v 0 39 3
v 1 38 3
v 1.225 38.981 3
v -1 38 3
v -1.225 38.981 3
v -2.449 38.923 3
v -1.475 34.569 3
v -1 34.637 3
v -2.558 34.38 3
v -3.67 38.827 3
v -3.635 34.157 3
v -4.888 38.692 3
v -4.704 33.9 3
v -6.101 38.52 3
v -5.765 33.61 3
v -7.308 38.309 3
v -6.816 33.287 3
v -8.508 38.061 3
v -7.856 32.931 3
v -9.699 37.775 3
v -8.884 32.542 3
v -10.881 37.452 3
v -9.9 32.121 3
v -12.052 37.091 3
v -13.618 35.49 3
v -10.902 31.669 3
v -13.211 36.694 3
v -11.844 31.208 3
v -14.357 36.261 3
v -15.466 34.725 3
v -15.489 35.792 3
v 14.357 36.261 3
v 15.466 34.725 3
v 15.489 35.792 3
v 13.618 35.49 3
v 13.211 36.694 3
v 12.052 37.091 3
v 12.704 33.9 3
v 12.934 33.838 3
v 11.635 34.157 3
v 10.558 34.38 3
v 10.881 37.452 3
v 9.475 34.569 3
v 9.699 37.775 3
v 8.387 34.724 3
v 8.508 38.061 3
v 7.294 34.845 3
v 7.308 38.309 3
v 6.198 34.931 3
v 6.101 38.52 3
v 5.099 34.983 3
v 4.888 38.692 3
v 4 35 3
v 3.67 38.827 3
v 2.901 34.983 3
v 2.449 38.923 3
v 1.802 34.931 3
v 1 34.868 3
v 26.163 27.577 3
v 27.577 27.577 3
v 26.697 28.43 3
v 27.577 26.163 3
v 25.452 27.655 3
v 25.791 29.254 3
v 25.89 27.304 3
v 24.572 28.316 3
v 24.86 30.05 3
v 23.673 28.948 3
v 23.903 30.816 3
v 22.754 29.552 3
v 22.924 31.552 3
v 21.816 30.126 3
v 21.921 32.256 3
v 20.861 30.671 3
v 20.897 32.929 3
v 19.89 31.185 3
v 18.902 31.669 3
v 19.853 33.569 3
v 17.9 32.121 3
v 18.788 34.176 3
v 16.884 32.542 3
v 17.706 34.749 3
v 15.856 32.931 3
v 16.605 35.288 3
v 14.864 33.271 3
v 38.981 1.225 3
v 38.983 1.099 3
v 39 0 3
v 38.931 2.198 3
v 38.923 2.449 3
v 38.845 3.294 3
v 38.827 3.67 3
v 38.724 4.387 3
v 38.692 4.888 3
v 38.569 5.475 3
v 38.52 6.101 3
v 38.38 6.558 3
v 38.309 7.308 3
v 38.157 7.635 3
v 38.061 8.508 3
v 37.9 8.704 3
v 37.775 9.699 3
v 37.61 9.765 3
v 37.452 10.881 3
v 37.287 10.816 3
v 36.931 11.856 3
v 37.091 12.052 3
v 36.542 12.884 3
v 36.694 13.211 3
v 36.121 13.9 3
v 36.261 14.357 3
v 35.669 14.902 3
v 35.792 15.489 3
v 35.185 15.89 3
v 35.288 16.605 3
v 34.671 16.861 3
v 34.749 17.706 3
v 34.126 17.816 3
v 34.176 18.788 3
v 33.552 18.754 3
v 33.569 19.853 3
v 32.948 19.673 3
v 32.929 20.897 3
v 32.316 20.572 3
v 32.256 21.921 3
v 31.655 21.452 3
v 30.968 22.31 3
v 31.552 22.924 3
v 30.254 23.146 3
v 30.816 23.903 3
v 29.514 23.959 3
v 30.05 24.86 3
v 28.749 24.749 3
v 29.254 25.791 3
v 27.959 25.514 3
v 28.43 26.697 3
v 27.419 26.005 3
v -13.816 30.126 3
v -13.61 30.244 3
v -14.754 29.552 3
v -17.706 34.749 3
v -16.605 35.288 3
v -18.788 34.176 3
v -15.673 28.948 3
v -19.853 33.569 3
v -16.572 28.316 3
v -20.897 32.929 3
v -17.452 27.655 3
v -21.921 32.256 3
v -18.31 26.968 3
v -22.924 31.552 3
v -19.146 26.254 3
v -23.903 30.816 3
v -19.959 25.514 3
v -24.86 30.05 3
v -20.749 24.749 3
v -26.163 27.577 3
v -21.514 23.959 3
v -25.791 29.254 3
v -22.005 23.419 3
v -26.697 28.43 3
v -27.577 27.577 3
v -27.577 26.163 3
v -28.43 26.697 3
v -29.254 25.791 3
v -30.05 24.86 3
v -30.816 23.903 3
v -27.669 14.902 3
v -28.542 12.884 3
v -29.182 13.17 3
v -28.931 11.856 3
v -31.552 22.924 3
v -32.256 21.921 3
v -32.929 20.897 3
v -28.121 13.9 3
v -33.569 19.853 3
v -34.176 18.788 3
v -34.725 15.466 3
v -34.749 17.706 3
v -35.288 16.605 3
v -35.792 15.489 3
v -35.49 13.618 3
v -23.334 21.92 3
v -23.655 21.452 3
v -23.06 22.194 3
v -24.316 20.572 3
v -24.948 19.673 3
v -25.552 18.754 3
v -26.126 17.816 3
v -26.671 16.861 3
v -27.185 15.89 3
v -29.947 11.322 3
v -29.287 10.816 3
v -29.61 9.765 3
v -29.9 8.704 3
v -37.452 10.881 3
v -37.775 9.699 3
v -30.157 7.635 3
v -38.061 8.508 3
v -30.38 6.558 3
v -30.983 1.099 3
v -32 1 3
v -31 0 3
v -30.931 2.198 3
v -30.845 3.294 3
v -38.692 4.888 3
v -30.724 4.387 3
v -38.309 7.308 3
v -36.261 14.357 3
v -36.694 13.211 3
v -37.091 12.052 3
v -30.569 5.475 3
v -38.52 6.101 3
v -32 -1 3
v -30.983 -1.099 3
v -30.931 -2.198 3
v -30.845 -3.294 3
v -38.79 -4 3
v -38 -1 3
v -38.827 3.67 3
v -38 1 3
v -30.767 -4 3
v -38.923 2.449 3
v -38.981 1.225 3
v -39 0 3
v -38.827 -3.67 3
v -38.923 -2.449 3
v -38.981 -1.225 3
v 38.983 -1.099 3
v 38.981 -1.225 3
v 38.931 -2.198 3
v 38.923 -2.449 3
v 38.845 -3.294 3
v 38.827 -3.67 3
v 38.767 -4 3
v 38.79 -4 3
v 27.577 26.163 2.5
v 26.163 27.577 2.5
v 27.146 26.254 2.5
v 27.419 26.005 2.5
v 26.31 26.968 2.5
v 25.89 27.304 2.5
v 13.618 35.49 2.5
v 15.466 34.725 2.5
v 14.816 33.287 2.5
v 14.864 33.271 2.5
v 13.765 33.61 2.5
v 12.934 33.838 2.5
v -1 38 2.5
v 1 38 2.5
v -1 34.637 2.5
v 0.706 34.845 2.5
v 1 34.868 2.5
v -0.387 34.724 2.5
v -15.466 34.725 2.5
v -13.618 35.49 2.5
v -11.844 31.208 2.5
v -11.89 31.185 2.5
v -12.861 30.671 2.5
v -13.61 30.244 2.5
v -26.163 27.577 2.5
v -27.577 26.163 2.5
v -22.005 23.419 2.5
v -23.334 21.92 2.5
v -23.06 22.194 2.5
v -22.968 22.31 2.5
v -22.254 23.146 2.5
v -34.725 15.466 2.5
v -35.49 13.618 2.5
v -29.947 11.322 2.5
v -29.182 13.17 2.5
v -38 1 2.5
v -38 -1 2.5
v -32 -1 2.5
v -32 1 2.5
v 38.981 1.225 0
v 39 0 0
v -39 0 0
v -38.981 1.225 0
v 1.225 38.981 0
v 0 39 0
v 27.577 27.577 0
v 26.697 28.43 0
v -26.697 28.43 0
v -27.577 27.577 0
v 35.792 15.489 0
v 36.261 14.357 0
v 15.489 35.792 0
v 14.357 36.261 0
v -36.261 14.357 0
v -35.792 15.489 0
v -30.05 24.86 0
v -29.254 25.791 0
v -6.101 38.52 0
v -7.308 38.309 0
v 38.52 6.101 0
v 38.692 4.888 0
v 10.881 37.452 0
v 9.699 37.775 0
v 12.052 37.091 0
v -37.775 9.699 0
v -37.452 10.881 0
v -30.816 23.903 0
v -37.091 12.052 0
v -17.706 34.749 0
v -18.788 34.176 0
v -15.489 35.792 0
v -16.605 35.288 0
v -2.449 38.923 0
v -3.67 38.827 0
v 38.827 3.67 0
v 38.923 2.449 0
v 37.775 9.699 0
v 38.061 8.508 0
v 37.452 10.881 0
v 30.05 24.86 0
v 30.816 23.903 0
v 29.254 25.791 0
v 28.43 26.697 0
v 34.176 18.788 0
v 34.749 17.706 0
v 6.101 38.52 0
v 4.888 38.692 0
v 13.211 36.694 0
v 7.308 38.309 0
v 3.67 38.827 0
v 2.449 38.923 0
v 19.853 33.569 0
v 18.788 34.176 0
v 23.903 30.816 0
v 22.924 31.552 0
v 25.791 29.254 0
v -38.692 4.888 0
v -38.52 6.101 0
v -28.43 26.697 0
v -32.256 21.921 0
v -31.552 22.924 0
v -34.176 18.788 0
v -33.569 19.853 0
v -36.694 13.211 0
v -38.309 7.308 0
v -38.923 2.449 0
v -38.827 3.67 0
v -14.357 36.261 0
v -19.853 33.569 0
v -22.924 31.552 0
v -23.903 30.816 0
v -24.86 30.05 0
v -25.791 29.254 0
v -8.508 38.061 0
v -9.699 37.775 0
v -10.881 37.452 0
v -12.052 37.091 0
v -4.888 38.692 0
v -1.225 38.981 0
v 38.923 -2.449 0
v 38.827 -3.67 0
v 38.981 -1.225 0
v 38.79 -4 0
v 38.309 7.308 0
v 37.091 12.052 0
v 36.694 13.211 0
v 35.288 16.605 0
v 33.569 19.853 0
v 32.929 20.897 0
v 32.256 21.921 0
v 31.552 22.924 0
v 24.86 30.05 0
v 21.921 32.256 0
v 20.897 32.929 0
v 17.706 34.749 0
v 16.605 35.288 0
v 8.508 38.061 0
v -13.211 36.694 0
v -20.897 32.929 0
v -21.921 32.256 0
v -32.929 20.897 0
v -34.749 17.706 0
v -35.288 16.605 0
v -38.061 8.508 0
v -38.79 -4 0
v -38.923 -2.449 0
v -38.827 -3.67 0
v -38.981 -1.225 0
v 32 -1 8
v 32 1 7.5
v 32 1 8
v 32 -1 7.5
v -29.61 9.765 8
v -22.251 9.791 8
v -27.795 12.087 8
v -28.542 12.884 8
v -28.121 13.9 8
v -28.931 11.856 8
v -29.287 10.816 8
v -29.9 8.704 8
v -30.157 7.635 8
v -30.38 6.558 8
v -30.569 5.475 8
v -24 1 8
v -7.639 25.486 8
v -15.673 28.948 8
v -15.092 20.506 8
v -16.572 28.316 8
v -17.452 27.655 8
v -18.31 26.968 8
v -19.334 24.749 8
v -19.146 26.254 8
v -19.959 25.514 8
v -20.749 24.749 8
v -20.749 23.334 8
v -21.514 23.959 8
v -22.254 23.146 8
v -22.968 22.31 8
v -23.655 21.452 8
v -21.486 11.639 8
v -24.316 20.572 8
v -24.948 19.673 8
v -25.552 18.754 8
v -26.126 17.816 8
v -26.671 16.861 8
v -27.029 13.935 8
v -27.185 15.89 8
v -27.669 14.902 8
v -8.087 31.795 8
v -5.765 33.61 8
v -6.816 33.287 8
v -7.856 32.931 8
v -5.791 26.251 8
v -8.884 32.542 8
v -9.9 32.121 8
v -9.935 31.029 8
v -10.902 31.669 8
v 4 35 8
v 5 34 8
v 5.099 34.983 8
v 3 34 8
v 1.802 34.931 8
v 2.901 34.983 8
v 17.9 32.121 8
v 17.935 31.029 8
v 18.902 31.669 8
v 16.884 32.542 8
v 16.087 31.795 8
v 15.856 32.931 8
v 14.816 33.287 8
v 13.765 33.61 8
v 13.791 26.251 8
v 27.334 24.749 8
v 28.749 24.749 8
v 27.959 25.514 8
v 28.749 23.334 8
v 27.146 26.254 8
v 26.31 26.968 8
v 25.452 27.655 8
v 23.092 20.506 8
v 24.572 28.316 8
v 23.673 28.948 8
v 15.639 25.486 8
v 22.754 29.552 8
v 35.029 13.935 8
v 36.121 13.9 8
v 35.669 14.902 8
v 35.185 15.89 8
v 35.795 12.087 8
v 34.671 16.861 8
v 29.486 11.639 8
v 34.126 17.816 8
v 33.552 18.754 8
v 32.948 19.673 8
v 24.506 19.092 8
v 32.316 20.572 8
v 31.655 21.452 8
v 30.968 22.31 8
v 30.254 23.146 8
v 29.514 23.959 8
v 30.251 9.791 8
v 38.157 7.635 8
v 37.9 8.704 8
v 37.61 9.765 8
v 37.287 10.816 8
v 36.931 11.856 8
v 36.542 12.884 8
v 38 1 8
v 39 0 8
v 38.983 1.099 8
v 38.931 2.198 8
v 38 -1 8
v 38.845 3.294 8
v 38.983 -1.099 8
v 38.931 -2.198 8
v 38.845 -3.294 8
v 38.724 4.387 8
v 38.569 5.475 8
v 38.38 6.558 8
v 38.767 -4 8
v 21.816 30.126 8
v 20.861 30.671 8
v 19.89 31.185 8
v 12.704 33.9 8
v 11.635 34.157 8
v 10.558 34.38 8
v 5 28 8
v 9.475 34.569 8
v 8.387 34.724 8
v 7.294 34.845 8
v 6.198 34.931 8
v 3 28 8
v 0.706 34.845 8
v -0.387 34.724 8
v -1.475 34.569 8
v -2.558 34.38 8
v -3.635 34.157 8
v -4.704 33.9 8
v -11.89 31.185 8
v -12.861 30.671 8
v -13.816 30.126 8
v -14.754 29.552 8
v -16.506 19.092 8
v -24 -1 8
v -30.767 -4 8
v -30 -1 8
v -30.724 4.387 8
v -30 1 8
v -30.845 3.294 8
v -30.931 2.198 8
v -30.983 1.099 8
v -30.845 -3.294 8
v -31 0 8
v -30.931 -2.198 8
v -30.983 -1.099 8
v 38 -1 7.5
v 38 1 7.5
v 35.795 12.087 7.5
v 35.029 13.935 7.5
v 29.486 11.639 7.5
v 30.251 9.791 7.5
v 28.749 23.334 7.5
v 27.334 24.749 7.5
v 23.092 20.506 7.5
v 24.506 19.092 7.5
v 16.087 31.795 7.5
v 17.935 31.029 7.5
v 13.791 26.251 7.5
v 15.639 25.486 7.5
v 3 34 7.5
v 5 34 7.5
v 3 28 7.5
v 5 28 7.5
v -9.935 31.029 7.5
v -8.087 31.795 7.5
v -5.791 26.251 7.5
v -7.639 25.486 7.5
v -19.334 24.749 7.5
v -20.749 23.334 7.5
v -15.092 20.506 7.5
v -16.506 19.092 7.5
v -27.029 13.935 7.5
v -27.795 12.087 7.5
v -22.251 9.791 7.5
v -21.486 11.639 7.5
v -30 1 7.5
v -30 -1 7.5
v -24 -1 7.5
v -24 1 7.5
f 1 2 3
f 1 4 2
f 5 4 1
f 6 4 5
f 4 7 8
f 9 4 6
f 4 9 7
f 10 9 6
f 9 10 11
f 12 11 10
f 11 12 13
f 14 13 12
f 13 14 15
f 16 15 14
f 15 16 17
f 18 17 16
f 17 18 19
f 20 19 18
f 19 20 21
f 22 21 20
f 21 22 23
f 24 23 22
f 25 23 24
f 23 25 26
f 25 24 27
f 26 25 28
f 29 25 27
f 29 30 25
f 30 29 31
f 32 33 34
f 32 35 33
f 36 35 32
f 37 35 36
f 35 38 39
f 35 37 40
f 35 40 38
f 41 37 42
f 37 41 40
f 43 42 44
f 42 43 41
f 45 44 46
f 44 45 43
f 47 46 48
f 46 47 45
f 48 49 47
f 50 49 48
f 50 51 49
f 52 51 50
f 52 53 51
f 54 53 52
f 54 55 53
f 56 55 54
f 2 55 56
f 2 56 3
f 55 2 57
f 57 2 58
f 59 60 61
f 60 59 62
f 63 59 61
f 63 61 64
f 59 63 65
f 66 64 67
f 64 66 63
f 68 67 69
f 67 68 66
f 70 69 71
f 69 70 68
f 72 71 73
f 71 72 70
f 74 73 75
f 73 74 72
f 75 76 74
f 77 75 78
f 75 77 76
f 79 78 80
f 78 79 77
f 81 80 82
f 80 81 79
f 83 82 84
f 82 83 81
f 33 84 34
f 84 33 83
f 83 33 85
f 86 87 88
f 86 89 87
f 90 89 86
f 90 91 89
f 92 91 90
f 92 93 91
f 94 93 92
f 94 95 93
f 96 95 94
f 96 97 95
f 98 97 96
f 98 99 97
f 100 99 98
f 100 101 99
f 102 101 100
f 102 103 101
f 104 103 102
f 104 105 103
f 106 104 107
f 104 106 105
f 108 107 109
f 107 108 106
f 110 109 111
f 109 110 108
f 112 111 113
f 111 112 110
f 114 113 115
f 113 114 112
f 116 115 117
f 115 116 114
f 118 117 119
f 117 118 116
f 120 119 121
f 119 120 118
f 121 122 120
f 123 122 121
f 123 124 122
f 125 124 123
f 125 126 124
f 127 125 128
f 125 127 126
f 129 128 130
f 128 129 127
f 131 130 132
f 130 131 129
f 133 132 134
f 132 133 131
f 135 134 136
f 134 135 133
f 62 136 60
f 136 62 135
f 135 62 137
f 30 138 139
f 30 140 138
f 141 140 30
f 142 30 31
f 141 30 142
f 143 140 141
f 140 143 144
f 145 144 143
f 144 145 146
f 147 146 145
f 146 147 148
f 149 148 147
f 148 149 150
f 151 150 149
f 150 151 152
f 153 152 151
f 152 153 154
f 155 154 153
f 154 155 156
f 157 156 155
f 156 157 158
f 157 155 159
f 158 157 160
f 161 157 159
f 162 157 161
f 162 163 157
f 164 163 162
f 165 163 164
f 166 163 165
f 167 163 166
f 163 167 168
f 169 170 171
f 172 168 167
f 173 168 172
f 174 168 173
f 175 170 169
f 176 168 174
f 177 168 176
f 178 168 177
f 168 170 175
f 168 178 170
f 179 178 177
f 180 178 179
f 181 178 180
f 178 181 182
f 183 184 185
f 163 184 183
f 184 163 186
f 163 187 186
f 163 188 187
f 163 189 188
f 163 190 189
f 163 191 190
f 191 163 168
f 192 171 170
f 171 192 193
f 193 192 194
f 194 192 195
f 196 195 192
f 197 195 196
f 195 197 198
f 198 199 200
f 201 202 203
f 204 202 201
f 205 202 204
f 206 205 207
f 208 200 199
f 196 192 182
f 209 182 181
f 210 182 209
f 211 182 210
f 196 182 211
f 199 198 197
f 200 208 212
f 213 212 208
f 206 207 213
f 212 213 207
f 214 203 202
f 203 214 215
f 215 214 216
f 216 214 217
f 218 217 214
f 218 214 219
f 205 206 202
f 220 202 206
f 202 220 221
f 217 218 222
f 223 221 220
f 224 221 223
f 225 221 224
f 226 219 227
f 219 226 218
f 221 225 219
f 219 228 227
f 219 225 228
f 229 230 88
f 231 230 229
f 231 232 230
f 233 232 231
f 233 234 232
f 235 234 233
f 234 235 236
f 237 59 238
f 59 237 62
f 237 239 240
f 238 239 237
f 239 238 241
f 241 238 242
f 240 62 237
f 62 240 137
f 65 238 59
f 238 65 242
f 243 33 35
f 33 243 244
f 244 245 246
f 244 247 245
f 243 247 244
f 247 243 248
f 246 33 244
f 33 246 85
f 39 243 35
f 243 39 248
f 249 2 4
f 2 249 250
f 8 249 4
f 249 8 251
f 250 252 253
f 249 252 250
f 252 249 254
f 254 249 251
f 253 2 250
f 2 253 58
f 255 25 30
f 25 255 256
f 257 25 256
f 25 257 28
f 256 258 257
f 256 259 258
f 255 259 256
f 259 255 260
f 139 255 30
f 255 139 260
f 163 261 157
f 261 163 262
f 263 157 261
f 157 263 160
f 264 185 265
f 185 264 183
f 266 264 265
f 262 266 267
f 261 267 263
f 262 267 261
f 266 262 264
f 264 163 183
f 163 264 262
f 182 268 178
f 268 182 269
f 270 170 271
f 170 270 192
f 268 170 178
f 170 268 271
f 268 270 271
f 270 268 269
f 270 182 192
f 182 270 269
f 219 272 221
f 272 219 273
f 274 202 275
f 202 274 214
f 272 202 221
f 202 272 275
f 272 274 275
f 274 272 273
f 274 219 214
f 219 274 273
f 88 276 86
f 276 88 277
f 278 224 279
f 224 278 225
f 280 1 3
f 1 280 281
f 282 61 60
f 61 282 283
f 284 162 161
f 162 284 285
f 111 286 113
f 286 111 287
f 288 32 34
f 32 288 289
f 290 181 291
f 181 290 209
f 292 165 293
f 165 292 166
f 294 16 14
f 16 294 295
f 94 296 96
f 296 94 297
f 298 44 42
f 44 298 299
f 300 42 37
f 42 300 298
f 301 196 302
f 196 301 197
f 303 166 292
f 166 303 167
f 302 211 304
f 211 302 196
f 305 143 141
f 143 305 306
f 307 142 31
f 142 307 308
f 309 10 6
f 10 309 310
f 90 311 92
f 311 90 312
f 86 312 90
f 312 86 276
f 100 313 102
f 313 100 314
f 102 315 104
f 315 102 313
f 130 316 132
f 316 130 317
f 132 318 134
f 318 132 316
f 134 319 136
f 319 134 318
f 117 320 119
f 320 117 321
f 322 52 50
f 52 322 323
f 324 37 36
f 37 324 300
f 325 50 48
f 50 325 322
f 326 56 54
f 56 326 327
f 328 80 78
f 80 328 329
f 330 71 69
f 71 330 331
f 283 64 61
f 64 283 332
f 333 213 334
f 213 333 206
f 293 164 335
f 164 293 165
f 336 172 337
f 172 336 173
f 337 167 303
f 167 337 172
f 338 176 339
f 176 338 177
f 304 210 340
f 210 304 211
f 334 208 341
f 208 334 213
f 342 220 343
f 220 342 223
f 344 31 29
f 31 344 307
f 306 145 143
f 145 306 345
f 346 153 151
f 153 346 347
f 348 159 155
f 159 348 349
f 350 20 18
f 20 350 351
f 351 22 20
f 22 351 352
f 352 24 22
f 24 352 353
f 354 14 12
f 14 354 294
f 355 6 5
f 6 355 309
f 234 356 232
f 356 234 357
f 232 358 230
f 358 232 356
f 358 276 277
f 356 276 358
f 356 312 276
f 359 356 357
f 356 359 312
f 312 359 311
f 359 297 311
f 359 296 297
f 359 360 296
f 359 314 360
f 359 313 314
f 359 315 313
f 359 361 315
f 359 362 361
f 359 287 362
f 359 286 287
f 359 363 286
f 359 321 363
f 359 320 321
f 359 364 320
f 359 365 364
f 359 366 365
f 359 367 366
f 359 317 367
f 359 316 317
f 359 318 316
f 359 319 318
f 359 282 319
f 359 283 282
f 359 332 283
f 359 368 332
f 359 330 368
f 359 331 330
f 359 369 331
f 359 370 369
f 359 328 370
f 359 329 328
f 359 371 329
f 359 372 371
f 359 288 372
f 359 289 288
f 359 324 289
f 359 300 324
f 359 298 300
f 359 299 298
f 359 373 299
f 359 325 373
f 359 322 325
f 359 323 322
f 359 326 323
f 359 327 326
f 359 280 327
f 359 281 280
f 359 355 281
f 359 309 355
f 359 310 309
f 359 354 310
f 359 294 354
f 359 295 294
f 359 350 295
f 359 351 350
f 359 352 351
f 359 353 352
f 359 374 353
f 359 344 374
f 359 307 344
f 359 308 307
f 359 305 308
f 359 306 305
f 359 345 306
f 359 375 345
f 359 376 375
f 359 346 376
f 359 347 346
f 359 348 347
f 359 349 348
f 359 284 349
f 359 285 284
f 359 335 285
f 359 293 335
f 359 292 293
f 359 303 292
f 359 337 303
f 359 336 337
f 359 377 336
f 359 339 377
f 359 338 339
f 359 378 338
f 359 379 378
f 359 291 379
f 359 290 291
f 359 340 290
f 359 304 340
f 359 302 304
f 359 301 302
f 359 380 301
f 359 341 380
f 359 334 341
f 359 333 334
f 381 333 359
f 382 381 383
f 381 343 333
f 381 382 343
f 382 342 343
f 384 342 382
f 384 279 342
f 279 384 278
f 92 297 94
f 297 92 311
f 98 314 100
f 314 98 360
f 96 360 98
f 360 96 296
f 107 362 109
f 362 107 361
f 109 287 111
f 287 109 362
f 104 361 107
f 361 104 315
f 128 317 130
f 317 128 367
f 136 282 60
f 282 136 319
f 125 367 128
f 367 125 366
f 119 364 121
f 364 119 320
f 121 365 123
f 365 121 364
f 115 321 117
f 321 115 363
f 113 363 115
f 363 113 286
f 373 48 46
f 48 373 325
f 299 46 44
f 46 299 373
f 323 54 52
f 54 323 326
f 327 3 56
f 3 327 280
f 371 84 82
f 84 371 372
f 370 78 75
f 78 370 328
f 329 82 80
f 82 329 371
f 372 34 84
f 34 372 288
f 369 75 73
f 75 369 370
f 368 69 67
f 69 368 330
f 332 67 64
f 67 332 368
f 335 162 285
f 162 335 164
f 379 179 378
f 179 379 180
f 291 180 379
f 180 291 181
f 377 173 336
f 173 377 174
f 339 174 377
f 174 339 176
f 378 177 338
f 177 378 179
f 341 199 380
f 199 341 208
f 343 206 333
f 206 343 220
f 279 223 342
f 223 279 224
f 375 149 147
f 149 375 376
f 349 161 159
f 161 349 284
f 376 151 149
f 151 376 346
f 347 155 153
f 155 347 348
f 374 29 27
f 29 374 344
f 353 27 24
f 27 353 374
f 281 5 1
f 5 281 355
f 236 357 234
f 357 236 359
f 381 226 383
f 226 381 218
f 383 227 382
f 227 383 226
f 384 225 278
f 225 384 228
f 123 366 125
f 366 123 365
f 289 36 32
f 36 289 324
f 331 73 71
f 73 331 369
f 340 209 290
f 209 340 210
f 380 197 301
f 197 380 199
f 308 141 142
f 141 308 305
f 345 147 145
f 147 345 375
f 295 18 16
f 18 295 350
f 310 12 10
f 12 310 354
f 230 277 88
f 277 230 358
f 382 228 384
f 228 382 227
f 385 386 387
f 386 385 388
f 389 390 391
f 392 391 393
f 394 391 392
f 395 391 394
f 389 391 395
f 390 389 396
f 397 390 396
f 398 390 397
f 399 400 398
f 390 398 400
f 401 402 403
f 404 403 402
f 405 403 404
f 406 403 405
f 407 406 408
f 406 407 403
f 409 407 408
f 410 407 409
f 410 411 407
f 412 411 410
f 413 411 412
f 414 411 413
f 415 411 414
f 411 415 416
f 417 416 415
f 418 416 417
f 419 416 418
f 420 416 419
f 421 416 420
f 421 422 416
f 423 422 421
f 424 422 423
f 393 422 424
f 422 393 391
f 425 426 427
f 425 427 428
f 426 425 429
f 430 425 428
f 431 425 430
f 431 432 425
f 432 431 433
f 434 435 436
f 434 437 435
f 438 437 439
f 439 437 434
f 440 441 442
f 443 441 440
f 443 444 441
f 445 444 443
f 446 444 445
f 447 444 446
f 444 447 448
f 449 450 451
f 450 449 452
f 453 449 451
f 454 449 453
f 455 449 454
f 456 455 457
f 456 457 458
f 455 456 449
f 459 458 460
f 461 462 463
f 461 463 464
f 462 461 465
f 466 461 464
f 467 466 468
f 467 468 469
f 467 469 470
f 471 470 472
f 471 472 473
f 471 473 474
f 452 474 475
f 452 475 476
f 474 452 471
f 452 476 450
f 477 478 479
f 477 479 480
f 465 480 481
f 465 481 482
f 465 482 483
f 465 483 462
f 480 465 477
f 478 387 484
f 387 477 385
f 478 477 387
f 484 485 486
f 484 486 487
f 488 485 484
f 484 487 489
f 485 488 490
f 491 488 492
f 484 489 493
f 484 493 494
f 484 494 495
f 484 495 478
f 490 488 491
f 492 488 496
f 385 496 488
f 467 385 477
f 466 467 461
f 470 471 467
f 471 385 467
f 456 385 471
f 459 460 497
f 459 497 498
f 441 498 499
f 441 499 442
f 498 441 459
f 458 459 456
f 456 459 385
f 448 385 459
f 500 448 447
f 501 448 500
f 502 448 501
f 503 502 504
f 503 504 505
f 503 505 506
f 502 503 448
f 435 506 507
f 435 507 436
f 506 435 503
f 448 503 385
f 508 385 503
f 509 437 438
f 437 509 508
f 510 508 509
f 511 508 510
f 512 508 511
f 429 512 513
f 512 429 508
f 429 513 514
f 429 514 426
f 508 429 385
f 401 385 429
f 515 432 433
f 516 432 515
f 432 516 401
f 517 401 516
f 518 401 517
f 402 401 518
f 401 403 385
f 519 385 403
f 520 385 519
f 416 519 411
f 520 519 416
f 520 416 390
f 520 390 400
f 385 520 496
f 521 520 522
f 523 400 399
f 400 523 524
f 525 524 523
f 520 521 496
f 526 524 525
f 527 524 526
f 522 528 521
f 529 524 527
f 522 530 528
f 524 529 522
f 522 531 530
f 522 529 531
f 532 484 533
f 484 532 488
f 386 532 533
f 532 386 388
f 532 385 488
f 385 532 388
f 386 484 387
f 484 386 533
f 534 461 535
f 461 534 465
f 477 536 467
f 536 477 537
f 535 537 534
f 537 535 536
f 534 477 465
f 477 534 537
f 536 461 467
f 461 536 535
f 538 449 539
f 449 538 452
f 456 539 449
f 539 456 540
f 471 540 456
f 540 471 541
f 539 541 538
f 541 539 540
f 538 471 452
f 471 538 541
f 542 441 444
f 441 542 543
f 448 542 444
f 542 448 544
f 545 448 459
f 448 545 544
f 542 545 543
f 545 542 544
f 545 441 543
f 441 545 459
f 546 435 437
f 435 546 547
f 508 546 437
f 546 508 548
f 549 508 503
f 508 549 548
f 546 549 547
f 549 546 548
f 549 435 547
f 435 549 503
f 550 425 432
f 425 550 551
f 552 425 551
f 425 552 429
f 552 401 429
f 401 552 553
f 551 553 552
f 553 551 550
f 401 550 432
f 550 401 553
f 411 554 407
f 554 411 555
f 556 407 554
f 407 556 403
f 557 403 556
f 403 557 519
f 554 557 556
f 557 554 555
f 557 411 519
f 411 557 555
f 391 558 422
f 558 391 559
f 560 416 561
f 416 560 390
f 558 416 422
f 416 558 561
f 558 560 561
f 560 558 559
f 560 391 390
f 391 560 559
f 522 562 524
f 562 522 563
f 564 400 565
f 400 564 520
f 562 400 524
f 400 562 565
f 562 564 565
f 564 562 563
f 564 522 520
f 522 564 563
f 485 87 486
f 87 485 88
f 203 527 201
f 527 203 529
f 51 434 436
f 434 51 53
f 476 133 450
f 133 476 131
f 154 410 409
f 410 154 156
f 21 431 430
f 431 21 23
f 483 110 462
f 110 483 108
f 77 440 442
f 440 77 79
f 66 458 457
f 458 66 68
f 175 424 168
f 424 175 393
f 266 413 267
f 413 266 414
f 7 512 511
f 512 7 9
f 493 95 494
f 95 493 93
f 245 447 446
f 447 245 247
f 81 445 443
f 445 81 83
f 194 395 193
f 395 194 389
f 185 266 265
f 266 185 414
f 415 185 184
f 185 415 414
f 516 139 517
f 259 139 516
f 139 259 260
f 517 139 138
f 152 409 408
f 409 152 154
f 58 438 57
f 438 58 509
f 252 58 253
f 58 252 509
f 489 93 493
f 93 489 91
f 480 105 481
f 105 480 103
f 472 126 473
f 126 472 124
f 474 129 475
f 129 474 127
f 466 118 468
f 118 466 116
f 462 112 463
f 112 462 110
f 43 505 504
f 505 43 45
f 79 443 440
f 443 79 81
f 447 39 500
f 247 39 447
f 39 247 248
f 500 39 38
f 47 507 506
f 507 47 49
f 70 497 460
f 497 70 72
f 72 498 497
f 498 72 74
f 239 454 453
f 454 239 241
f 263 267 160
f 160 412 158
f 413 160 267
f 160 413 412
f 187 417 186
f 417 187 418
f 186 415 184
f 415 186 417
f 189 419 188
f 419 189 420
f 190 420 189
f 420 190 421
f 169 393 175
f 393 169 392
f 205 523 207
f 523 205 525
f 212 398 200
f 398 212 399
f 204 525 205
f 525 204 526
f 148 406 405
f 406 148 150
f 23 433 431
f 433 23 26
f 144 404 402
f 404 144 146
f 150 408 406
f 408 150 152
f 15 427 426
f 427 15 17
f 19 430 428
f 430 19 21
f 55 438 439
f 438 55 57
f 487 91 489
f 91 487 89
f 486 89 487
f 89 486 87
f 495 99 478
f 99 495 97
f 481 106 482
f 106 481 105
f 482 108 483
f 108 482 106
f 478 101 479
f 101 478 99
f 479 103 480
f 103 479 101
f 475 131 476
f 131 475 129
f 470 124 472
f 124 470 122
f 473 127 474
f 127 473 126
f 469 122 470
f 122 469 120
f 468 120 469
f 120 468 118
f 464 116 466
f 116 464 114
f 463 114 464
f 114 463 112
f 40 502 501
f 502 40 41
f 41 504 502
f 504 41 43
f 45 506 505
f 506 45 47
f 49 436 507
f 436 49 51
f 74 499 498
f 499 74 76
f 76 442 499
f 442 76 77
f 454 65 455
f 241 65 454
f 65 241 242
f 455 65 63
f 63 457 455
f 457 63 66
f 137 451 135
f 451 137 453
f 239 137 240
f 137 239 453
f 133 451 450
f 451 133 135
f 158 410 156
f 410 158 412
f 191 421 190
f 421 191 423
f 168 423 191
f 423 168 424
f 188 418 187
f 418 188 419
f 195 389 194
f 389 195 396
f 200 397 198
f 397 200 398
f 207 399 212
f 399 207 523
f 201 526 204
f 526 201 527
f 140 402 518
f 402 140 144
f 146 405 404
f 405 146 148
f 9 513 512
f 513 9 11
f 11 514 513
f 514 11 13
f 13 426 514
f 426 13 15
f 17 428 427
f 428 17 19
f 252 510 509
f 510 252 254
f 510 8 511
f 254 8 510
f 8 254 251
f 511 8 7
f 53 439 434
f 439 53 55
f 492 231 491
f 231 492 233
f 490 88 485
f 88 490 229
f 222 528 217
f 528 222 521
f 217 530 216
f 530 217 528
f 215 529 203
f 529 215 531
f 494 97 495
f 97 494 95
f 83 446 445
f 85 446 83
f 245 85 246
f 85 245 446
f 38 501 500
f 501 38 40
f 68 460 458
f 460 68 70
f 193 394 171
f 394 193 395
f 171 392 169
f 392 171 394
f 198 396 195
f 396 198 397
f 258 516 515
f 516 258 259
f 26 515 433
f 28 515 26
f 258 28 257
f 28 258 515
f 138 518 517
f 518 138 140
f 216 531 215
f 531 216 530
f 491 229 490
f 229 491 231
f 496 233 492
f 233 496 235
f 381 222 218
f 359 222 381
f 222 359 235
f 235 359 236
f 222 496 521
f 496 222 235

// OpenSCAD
// 0 to 8mm depth
$fn=200;

difference(){
    union(){
        difference(){
            cylinder(d=78, h=3);
            for(i=[0:8]){
                        rotate([0,0,i*180/8]) translate([32, -1, 2.5]) cube([6, 2, 0.5]);
            }
        }
        translate([4,0,0]){
            difference(){
                cylinder(d=70, h=8);
                for(i=[0:8]){
                    rotate([0,0,i*180/8]) translate([28, -1, 7.5]) cube([6, 2, 0.5]);
                }
            }
        }
    }
    translate([-39,-43,0]){
        cube([78, 39, 8]);
    }
    
}
